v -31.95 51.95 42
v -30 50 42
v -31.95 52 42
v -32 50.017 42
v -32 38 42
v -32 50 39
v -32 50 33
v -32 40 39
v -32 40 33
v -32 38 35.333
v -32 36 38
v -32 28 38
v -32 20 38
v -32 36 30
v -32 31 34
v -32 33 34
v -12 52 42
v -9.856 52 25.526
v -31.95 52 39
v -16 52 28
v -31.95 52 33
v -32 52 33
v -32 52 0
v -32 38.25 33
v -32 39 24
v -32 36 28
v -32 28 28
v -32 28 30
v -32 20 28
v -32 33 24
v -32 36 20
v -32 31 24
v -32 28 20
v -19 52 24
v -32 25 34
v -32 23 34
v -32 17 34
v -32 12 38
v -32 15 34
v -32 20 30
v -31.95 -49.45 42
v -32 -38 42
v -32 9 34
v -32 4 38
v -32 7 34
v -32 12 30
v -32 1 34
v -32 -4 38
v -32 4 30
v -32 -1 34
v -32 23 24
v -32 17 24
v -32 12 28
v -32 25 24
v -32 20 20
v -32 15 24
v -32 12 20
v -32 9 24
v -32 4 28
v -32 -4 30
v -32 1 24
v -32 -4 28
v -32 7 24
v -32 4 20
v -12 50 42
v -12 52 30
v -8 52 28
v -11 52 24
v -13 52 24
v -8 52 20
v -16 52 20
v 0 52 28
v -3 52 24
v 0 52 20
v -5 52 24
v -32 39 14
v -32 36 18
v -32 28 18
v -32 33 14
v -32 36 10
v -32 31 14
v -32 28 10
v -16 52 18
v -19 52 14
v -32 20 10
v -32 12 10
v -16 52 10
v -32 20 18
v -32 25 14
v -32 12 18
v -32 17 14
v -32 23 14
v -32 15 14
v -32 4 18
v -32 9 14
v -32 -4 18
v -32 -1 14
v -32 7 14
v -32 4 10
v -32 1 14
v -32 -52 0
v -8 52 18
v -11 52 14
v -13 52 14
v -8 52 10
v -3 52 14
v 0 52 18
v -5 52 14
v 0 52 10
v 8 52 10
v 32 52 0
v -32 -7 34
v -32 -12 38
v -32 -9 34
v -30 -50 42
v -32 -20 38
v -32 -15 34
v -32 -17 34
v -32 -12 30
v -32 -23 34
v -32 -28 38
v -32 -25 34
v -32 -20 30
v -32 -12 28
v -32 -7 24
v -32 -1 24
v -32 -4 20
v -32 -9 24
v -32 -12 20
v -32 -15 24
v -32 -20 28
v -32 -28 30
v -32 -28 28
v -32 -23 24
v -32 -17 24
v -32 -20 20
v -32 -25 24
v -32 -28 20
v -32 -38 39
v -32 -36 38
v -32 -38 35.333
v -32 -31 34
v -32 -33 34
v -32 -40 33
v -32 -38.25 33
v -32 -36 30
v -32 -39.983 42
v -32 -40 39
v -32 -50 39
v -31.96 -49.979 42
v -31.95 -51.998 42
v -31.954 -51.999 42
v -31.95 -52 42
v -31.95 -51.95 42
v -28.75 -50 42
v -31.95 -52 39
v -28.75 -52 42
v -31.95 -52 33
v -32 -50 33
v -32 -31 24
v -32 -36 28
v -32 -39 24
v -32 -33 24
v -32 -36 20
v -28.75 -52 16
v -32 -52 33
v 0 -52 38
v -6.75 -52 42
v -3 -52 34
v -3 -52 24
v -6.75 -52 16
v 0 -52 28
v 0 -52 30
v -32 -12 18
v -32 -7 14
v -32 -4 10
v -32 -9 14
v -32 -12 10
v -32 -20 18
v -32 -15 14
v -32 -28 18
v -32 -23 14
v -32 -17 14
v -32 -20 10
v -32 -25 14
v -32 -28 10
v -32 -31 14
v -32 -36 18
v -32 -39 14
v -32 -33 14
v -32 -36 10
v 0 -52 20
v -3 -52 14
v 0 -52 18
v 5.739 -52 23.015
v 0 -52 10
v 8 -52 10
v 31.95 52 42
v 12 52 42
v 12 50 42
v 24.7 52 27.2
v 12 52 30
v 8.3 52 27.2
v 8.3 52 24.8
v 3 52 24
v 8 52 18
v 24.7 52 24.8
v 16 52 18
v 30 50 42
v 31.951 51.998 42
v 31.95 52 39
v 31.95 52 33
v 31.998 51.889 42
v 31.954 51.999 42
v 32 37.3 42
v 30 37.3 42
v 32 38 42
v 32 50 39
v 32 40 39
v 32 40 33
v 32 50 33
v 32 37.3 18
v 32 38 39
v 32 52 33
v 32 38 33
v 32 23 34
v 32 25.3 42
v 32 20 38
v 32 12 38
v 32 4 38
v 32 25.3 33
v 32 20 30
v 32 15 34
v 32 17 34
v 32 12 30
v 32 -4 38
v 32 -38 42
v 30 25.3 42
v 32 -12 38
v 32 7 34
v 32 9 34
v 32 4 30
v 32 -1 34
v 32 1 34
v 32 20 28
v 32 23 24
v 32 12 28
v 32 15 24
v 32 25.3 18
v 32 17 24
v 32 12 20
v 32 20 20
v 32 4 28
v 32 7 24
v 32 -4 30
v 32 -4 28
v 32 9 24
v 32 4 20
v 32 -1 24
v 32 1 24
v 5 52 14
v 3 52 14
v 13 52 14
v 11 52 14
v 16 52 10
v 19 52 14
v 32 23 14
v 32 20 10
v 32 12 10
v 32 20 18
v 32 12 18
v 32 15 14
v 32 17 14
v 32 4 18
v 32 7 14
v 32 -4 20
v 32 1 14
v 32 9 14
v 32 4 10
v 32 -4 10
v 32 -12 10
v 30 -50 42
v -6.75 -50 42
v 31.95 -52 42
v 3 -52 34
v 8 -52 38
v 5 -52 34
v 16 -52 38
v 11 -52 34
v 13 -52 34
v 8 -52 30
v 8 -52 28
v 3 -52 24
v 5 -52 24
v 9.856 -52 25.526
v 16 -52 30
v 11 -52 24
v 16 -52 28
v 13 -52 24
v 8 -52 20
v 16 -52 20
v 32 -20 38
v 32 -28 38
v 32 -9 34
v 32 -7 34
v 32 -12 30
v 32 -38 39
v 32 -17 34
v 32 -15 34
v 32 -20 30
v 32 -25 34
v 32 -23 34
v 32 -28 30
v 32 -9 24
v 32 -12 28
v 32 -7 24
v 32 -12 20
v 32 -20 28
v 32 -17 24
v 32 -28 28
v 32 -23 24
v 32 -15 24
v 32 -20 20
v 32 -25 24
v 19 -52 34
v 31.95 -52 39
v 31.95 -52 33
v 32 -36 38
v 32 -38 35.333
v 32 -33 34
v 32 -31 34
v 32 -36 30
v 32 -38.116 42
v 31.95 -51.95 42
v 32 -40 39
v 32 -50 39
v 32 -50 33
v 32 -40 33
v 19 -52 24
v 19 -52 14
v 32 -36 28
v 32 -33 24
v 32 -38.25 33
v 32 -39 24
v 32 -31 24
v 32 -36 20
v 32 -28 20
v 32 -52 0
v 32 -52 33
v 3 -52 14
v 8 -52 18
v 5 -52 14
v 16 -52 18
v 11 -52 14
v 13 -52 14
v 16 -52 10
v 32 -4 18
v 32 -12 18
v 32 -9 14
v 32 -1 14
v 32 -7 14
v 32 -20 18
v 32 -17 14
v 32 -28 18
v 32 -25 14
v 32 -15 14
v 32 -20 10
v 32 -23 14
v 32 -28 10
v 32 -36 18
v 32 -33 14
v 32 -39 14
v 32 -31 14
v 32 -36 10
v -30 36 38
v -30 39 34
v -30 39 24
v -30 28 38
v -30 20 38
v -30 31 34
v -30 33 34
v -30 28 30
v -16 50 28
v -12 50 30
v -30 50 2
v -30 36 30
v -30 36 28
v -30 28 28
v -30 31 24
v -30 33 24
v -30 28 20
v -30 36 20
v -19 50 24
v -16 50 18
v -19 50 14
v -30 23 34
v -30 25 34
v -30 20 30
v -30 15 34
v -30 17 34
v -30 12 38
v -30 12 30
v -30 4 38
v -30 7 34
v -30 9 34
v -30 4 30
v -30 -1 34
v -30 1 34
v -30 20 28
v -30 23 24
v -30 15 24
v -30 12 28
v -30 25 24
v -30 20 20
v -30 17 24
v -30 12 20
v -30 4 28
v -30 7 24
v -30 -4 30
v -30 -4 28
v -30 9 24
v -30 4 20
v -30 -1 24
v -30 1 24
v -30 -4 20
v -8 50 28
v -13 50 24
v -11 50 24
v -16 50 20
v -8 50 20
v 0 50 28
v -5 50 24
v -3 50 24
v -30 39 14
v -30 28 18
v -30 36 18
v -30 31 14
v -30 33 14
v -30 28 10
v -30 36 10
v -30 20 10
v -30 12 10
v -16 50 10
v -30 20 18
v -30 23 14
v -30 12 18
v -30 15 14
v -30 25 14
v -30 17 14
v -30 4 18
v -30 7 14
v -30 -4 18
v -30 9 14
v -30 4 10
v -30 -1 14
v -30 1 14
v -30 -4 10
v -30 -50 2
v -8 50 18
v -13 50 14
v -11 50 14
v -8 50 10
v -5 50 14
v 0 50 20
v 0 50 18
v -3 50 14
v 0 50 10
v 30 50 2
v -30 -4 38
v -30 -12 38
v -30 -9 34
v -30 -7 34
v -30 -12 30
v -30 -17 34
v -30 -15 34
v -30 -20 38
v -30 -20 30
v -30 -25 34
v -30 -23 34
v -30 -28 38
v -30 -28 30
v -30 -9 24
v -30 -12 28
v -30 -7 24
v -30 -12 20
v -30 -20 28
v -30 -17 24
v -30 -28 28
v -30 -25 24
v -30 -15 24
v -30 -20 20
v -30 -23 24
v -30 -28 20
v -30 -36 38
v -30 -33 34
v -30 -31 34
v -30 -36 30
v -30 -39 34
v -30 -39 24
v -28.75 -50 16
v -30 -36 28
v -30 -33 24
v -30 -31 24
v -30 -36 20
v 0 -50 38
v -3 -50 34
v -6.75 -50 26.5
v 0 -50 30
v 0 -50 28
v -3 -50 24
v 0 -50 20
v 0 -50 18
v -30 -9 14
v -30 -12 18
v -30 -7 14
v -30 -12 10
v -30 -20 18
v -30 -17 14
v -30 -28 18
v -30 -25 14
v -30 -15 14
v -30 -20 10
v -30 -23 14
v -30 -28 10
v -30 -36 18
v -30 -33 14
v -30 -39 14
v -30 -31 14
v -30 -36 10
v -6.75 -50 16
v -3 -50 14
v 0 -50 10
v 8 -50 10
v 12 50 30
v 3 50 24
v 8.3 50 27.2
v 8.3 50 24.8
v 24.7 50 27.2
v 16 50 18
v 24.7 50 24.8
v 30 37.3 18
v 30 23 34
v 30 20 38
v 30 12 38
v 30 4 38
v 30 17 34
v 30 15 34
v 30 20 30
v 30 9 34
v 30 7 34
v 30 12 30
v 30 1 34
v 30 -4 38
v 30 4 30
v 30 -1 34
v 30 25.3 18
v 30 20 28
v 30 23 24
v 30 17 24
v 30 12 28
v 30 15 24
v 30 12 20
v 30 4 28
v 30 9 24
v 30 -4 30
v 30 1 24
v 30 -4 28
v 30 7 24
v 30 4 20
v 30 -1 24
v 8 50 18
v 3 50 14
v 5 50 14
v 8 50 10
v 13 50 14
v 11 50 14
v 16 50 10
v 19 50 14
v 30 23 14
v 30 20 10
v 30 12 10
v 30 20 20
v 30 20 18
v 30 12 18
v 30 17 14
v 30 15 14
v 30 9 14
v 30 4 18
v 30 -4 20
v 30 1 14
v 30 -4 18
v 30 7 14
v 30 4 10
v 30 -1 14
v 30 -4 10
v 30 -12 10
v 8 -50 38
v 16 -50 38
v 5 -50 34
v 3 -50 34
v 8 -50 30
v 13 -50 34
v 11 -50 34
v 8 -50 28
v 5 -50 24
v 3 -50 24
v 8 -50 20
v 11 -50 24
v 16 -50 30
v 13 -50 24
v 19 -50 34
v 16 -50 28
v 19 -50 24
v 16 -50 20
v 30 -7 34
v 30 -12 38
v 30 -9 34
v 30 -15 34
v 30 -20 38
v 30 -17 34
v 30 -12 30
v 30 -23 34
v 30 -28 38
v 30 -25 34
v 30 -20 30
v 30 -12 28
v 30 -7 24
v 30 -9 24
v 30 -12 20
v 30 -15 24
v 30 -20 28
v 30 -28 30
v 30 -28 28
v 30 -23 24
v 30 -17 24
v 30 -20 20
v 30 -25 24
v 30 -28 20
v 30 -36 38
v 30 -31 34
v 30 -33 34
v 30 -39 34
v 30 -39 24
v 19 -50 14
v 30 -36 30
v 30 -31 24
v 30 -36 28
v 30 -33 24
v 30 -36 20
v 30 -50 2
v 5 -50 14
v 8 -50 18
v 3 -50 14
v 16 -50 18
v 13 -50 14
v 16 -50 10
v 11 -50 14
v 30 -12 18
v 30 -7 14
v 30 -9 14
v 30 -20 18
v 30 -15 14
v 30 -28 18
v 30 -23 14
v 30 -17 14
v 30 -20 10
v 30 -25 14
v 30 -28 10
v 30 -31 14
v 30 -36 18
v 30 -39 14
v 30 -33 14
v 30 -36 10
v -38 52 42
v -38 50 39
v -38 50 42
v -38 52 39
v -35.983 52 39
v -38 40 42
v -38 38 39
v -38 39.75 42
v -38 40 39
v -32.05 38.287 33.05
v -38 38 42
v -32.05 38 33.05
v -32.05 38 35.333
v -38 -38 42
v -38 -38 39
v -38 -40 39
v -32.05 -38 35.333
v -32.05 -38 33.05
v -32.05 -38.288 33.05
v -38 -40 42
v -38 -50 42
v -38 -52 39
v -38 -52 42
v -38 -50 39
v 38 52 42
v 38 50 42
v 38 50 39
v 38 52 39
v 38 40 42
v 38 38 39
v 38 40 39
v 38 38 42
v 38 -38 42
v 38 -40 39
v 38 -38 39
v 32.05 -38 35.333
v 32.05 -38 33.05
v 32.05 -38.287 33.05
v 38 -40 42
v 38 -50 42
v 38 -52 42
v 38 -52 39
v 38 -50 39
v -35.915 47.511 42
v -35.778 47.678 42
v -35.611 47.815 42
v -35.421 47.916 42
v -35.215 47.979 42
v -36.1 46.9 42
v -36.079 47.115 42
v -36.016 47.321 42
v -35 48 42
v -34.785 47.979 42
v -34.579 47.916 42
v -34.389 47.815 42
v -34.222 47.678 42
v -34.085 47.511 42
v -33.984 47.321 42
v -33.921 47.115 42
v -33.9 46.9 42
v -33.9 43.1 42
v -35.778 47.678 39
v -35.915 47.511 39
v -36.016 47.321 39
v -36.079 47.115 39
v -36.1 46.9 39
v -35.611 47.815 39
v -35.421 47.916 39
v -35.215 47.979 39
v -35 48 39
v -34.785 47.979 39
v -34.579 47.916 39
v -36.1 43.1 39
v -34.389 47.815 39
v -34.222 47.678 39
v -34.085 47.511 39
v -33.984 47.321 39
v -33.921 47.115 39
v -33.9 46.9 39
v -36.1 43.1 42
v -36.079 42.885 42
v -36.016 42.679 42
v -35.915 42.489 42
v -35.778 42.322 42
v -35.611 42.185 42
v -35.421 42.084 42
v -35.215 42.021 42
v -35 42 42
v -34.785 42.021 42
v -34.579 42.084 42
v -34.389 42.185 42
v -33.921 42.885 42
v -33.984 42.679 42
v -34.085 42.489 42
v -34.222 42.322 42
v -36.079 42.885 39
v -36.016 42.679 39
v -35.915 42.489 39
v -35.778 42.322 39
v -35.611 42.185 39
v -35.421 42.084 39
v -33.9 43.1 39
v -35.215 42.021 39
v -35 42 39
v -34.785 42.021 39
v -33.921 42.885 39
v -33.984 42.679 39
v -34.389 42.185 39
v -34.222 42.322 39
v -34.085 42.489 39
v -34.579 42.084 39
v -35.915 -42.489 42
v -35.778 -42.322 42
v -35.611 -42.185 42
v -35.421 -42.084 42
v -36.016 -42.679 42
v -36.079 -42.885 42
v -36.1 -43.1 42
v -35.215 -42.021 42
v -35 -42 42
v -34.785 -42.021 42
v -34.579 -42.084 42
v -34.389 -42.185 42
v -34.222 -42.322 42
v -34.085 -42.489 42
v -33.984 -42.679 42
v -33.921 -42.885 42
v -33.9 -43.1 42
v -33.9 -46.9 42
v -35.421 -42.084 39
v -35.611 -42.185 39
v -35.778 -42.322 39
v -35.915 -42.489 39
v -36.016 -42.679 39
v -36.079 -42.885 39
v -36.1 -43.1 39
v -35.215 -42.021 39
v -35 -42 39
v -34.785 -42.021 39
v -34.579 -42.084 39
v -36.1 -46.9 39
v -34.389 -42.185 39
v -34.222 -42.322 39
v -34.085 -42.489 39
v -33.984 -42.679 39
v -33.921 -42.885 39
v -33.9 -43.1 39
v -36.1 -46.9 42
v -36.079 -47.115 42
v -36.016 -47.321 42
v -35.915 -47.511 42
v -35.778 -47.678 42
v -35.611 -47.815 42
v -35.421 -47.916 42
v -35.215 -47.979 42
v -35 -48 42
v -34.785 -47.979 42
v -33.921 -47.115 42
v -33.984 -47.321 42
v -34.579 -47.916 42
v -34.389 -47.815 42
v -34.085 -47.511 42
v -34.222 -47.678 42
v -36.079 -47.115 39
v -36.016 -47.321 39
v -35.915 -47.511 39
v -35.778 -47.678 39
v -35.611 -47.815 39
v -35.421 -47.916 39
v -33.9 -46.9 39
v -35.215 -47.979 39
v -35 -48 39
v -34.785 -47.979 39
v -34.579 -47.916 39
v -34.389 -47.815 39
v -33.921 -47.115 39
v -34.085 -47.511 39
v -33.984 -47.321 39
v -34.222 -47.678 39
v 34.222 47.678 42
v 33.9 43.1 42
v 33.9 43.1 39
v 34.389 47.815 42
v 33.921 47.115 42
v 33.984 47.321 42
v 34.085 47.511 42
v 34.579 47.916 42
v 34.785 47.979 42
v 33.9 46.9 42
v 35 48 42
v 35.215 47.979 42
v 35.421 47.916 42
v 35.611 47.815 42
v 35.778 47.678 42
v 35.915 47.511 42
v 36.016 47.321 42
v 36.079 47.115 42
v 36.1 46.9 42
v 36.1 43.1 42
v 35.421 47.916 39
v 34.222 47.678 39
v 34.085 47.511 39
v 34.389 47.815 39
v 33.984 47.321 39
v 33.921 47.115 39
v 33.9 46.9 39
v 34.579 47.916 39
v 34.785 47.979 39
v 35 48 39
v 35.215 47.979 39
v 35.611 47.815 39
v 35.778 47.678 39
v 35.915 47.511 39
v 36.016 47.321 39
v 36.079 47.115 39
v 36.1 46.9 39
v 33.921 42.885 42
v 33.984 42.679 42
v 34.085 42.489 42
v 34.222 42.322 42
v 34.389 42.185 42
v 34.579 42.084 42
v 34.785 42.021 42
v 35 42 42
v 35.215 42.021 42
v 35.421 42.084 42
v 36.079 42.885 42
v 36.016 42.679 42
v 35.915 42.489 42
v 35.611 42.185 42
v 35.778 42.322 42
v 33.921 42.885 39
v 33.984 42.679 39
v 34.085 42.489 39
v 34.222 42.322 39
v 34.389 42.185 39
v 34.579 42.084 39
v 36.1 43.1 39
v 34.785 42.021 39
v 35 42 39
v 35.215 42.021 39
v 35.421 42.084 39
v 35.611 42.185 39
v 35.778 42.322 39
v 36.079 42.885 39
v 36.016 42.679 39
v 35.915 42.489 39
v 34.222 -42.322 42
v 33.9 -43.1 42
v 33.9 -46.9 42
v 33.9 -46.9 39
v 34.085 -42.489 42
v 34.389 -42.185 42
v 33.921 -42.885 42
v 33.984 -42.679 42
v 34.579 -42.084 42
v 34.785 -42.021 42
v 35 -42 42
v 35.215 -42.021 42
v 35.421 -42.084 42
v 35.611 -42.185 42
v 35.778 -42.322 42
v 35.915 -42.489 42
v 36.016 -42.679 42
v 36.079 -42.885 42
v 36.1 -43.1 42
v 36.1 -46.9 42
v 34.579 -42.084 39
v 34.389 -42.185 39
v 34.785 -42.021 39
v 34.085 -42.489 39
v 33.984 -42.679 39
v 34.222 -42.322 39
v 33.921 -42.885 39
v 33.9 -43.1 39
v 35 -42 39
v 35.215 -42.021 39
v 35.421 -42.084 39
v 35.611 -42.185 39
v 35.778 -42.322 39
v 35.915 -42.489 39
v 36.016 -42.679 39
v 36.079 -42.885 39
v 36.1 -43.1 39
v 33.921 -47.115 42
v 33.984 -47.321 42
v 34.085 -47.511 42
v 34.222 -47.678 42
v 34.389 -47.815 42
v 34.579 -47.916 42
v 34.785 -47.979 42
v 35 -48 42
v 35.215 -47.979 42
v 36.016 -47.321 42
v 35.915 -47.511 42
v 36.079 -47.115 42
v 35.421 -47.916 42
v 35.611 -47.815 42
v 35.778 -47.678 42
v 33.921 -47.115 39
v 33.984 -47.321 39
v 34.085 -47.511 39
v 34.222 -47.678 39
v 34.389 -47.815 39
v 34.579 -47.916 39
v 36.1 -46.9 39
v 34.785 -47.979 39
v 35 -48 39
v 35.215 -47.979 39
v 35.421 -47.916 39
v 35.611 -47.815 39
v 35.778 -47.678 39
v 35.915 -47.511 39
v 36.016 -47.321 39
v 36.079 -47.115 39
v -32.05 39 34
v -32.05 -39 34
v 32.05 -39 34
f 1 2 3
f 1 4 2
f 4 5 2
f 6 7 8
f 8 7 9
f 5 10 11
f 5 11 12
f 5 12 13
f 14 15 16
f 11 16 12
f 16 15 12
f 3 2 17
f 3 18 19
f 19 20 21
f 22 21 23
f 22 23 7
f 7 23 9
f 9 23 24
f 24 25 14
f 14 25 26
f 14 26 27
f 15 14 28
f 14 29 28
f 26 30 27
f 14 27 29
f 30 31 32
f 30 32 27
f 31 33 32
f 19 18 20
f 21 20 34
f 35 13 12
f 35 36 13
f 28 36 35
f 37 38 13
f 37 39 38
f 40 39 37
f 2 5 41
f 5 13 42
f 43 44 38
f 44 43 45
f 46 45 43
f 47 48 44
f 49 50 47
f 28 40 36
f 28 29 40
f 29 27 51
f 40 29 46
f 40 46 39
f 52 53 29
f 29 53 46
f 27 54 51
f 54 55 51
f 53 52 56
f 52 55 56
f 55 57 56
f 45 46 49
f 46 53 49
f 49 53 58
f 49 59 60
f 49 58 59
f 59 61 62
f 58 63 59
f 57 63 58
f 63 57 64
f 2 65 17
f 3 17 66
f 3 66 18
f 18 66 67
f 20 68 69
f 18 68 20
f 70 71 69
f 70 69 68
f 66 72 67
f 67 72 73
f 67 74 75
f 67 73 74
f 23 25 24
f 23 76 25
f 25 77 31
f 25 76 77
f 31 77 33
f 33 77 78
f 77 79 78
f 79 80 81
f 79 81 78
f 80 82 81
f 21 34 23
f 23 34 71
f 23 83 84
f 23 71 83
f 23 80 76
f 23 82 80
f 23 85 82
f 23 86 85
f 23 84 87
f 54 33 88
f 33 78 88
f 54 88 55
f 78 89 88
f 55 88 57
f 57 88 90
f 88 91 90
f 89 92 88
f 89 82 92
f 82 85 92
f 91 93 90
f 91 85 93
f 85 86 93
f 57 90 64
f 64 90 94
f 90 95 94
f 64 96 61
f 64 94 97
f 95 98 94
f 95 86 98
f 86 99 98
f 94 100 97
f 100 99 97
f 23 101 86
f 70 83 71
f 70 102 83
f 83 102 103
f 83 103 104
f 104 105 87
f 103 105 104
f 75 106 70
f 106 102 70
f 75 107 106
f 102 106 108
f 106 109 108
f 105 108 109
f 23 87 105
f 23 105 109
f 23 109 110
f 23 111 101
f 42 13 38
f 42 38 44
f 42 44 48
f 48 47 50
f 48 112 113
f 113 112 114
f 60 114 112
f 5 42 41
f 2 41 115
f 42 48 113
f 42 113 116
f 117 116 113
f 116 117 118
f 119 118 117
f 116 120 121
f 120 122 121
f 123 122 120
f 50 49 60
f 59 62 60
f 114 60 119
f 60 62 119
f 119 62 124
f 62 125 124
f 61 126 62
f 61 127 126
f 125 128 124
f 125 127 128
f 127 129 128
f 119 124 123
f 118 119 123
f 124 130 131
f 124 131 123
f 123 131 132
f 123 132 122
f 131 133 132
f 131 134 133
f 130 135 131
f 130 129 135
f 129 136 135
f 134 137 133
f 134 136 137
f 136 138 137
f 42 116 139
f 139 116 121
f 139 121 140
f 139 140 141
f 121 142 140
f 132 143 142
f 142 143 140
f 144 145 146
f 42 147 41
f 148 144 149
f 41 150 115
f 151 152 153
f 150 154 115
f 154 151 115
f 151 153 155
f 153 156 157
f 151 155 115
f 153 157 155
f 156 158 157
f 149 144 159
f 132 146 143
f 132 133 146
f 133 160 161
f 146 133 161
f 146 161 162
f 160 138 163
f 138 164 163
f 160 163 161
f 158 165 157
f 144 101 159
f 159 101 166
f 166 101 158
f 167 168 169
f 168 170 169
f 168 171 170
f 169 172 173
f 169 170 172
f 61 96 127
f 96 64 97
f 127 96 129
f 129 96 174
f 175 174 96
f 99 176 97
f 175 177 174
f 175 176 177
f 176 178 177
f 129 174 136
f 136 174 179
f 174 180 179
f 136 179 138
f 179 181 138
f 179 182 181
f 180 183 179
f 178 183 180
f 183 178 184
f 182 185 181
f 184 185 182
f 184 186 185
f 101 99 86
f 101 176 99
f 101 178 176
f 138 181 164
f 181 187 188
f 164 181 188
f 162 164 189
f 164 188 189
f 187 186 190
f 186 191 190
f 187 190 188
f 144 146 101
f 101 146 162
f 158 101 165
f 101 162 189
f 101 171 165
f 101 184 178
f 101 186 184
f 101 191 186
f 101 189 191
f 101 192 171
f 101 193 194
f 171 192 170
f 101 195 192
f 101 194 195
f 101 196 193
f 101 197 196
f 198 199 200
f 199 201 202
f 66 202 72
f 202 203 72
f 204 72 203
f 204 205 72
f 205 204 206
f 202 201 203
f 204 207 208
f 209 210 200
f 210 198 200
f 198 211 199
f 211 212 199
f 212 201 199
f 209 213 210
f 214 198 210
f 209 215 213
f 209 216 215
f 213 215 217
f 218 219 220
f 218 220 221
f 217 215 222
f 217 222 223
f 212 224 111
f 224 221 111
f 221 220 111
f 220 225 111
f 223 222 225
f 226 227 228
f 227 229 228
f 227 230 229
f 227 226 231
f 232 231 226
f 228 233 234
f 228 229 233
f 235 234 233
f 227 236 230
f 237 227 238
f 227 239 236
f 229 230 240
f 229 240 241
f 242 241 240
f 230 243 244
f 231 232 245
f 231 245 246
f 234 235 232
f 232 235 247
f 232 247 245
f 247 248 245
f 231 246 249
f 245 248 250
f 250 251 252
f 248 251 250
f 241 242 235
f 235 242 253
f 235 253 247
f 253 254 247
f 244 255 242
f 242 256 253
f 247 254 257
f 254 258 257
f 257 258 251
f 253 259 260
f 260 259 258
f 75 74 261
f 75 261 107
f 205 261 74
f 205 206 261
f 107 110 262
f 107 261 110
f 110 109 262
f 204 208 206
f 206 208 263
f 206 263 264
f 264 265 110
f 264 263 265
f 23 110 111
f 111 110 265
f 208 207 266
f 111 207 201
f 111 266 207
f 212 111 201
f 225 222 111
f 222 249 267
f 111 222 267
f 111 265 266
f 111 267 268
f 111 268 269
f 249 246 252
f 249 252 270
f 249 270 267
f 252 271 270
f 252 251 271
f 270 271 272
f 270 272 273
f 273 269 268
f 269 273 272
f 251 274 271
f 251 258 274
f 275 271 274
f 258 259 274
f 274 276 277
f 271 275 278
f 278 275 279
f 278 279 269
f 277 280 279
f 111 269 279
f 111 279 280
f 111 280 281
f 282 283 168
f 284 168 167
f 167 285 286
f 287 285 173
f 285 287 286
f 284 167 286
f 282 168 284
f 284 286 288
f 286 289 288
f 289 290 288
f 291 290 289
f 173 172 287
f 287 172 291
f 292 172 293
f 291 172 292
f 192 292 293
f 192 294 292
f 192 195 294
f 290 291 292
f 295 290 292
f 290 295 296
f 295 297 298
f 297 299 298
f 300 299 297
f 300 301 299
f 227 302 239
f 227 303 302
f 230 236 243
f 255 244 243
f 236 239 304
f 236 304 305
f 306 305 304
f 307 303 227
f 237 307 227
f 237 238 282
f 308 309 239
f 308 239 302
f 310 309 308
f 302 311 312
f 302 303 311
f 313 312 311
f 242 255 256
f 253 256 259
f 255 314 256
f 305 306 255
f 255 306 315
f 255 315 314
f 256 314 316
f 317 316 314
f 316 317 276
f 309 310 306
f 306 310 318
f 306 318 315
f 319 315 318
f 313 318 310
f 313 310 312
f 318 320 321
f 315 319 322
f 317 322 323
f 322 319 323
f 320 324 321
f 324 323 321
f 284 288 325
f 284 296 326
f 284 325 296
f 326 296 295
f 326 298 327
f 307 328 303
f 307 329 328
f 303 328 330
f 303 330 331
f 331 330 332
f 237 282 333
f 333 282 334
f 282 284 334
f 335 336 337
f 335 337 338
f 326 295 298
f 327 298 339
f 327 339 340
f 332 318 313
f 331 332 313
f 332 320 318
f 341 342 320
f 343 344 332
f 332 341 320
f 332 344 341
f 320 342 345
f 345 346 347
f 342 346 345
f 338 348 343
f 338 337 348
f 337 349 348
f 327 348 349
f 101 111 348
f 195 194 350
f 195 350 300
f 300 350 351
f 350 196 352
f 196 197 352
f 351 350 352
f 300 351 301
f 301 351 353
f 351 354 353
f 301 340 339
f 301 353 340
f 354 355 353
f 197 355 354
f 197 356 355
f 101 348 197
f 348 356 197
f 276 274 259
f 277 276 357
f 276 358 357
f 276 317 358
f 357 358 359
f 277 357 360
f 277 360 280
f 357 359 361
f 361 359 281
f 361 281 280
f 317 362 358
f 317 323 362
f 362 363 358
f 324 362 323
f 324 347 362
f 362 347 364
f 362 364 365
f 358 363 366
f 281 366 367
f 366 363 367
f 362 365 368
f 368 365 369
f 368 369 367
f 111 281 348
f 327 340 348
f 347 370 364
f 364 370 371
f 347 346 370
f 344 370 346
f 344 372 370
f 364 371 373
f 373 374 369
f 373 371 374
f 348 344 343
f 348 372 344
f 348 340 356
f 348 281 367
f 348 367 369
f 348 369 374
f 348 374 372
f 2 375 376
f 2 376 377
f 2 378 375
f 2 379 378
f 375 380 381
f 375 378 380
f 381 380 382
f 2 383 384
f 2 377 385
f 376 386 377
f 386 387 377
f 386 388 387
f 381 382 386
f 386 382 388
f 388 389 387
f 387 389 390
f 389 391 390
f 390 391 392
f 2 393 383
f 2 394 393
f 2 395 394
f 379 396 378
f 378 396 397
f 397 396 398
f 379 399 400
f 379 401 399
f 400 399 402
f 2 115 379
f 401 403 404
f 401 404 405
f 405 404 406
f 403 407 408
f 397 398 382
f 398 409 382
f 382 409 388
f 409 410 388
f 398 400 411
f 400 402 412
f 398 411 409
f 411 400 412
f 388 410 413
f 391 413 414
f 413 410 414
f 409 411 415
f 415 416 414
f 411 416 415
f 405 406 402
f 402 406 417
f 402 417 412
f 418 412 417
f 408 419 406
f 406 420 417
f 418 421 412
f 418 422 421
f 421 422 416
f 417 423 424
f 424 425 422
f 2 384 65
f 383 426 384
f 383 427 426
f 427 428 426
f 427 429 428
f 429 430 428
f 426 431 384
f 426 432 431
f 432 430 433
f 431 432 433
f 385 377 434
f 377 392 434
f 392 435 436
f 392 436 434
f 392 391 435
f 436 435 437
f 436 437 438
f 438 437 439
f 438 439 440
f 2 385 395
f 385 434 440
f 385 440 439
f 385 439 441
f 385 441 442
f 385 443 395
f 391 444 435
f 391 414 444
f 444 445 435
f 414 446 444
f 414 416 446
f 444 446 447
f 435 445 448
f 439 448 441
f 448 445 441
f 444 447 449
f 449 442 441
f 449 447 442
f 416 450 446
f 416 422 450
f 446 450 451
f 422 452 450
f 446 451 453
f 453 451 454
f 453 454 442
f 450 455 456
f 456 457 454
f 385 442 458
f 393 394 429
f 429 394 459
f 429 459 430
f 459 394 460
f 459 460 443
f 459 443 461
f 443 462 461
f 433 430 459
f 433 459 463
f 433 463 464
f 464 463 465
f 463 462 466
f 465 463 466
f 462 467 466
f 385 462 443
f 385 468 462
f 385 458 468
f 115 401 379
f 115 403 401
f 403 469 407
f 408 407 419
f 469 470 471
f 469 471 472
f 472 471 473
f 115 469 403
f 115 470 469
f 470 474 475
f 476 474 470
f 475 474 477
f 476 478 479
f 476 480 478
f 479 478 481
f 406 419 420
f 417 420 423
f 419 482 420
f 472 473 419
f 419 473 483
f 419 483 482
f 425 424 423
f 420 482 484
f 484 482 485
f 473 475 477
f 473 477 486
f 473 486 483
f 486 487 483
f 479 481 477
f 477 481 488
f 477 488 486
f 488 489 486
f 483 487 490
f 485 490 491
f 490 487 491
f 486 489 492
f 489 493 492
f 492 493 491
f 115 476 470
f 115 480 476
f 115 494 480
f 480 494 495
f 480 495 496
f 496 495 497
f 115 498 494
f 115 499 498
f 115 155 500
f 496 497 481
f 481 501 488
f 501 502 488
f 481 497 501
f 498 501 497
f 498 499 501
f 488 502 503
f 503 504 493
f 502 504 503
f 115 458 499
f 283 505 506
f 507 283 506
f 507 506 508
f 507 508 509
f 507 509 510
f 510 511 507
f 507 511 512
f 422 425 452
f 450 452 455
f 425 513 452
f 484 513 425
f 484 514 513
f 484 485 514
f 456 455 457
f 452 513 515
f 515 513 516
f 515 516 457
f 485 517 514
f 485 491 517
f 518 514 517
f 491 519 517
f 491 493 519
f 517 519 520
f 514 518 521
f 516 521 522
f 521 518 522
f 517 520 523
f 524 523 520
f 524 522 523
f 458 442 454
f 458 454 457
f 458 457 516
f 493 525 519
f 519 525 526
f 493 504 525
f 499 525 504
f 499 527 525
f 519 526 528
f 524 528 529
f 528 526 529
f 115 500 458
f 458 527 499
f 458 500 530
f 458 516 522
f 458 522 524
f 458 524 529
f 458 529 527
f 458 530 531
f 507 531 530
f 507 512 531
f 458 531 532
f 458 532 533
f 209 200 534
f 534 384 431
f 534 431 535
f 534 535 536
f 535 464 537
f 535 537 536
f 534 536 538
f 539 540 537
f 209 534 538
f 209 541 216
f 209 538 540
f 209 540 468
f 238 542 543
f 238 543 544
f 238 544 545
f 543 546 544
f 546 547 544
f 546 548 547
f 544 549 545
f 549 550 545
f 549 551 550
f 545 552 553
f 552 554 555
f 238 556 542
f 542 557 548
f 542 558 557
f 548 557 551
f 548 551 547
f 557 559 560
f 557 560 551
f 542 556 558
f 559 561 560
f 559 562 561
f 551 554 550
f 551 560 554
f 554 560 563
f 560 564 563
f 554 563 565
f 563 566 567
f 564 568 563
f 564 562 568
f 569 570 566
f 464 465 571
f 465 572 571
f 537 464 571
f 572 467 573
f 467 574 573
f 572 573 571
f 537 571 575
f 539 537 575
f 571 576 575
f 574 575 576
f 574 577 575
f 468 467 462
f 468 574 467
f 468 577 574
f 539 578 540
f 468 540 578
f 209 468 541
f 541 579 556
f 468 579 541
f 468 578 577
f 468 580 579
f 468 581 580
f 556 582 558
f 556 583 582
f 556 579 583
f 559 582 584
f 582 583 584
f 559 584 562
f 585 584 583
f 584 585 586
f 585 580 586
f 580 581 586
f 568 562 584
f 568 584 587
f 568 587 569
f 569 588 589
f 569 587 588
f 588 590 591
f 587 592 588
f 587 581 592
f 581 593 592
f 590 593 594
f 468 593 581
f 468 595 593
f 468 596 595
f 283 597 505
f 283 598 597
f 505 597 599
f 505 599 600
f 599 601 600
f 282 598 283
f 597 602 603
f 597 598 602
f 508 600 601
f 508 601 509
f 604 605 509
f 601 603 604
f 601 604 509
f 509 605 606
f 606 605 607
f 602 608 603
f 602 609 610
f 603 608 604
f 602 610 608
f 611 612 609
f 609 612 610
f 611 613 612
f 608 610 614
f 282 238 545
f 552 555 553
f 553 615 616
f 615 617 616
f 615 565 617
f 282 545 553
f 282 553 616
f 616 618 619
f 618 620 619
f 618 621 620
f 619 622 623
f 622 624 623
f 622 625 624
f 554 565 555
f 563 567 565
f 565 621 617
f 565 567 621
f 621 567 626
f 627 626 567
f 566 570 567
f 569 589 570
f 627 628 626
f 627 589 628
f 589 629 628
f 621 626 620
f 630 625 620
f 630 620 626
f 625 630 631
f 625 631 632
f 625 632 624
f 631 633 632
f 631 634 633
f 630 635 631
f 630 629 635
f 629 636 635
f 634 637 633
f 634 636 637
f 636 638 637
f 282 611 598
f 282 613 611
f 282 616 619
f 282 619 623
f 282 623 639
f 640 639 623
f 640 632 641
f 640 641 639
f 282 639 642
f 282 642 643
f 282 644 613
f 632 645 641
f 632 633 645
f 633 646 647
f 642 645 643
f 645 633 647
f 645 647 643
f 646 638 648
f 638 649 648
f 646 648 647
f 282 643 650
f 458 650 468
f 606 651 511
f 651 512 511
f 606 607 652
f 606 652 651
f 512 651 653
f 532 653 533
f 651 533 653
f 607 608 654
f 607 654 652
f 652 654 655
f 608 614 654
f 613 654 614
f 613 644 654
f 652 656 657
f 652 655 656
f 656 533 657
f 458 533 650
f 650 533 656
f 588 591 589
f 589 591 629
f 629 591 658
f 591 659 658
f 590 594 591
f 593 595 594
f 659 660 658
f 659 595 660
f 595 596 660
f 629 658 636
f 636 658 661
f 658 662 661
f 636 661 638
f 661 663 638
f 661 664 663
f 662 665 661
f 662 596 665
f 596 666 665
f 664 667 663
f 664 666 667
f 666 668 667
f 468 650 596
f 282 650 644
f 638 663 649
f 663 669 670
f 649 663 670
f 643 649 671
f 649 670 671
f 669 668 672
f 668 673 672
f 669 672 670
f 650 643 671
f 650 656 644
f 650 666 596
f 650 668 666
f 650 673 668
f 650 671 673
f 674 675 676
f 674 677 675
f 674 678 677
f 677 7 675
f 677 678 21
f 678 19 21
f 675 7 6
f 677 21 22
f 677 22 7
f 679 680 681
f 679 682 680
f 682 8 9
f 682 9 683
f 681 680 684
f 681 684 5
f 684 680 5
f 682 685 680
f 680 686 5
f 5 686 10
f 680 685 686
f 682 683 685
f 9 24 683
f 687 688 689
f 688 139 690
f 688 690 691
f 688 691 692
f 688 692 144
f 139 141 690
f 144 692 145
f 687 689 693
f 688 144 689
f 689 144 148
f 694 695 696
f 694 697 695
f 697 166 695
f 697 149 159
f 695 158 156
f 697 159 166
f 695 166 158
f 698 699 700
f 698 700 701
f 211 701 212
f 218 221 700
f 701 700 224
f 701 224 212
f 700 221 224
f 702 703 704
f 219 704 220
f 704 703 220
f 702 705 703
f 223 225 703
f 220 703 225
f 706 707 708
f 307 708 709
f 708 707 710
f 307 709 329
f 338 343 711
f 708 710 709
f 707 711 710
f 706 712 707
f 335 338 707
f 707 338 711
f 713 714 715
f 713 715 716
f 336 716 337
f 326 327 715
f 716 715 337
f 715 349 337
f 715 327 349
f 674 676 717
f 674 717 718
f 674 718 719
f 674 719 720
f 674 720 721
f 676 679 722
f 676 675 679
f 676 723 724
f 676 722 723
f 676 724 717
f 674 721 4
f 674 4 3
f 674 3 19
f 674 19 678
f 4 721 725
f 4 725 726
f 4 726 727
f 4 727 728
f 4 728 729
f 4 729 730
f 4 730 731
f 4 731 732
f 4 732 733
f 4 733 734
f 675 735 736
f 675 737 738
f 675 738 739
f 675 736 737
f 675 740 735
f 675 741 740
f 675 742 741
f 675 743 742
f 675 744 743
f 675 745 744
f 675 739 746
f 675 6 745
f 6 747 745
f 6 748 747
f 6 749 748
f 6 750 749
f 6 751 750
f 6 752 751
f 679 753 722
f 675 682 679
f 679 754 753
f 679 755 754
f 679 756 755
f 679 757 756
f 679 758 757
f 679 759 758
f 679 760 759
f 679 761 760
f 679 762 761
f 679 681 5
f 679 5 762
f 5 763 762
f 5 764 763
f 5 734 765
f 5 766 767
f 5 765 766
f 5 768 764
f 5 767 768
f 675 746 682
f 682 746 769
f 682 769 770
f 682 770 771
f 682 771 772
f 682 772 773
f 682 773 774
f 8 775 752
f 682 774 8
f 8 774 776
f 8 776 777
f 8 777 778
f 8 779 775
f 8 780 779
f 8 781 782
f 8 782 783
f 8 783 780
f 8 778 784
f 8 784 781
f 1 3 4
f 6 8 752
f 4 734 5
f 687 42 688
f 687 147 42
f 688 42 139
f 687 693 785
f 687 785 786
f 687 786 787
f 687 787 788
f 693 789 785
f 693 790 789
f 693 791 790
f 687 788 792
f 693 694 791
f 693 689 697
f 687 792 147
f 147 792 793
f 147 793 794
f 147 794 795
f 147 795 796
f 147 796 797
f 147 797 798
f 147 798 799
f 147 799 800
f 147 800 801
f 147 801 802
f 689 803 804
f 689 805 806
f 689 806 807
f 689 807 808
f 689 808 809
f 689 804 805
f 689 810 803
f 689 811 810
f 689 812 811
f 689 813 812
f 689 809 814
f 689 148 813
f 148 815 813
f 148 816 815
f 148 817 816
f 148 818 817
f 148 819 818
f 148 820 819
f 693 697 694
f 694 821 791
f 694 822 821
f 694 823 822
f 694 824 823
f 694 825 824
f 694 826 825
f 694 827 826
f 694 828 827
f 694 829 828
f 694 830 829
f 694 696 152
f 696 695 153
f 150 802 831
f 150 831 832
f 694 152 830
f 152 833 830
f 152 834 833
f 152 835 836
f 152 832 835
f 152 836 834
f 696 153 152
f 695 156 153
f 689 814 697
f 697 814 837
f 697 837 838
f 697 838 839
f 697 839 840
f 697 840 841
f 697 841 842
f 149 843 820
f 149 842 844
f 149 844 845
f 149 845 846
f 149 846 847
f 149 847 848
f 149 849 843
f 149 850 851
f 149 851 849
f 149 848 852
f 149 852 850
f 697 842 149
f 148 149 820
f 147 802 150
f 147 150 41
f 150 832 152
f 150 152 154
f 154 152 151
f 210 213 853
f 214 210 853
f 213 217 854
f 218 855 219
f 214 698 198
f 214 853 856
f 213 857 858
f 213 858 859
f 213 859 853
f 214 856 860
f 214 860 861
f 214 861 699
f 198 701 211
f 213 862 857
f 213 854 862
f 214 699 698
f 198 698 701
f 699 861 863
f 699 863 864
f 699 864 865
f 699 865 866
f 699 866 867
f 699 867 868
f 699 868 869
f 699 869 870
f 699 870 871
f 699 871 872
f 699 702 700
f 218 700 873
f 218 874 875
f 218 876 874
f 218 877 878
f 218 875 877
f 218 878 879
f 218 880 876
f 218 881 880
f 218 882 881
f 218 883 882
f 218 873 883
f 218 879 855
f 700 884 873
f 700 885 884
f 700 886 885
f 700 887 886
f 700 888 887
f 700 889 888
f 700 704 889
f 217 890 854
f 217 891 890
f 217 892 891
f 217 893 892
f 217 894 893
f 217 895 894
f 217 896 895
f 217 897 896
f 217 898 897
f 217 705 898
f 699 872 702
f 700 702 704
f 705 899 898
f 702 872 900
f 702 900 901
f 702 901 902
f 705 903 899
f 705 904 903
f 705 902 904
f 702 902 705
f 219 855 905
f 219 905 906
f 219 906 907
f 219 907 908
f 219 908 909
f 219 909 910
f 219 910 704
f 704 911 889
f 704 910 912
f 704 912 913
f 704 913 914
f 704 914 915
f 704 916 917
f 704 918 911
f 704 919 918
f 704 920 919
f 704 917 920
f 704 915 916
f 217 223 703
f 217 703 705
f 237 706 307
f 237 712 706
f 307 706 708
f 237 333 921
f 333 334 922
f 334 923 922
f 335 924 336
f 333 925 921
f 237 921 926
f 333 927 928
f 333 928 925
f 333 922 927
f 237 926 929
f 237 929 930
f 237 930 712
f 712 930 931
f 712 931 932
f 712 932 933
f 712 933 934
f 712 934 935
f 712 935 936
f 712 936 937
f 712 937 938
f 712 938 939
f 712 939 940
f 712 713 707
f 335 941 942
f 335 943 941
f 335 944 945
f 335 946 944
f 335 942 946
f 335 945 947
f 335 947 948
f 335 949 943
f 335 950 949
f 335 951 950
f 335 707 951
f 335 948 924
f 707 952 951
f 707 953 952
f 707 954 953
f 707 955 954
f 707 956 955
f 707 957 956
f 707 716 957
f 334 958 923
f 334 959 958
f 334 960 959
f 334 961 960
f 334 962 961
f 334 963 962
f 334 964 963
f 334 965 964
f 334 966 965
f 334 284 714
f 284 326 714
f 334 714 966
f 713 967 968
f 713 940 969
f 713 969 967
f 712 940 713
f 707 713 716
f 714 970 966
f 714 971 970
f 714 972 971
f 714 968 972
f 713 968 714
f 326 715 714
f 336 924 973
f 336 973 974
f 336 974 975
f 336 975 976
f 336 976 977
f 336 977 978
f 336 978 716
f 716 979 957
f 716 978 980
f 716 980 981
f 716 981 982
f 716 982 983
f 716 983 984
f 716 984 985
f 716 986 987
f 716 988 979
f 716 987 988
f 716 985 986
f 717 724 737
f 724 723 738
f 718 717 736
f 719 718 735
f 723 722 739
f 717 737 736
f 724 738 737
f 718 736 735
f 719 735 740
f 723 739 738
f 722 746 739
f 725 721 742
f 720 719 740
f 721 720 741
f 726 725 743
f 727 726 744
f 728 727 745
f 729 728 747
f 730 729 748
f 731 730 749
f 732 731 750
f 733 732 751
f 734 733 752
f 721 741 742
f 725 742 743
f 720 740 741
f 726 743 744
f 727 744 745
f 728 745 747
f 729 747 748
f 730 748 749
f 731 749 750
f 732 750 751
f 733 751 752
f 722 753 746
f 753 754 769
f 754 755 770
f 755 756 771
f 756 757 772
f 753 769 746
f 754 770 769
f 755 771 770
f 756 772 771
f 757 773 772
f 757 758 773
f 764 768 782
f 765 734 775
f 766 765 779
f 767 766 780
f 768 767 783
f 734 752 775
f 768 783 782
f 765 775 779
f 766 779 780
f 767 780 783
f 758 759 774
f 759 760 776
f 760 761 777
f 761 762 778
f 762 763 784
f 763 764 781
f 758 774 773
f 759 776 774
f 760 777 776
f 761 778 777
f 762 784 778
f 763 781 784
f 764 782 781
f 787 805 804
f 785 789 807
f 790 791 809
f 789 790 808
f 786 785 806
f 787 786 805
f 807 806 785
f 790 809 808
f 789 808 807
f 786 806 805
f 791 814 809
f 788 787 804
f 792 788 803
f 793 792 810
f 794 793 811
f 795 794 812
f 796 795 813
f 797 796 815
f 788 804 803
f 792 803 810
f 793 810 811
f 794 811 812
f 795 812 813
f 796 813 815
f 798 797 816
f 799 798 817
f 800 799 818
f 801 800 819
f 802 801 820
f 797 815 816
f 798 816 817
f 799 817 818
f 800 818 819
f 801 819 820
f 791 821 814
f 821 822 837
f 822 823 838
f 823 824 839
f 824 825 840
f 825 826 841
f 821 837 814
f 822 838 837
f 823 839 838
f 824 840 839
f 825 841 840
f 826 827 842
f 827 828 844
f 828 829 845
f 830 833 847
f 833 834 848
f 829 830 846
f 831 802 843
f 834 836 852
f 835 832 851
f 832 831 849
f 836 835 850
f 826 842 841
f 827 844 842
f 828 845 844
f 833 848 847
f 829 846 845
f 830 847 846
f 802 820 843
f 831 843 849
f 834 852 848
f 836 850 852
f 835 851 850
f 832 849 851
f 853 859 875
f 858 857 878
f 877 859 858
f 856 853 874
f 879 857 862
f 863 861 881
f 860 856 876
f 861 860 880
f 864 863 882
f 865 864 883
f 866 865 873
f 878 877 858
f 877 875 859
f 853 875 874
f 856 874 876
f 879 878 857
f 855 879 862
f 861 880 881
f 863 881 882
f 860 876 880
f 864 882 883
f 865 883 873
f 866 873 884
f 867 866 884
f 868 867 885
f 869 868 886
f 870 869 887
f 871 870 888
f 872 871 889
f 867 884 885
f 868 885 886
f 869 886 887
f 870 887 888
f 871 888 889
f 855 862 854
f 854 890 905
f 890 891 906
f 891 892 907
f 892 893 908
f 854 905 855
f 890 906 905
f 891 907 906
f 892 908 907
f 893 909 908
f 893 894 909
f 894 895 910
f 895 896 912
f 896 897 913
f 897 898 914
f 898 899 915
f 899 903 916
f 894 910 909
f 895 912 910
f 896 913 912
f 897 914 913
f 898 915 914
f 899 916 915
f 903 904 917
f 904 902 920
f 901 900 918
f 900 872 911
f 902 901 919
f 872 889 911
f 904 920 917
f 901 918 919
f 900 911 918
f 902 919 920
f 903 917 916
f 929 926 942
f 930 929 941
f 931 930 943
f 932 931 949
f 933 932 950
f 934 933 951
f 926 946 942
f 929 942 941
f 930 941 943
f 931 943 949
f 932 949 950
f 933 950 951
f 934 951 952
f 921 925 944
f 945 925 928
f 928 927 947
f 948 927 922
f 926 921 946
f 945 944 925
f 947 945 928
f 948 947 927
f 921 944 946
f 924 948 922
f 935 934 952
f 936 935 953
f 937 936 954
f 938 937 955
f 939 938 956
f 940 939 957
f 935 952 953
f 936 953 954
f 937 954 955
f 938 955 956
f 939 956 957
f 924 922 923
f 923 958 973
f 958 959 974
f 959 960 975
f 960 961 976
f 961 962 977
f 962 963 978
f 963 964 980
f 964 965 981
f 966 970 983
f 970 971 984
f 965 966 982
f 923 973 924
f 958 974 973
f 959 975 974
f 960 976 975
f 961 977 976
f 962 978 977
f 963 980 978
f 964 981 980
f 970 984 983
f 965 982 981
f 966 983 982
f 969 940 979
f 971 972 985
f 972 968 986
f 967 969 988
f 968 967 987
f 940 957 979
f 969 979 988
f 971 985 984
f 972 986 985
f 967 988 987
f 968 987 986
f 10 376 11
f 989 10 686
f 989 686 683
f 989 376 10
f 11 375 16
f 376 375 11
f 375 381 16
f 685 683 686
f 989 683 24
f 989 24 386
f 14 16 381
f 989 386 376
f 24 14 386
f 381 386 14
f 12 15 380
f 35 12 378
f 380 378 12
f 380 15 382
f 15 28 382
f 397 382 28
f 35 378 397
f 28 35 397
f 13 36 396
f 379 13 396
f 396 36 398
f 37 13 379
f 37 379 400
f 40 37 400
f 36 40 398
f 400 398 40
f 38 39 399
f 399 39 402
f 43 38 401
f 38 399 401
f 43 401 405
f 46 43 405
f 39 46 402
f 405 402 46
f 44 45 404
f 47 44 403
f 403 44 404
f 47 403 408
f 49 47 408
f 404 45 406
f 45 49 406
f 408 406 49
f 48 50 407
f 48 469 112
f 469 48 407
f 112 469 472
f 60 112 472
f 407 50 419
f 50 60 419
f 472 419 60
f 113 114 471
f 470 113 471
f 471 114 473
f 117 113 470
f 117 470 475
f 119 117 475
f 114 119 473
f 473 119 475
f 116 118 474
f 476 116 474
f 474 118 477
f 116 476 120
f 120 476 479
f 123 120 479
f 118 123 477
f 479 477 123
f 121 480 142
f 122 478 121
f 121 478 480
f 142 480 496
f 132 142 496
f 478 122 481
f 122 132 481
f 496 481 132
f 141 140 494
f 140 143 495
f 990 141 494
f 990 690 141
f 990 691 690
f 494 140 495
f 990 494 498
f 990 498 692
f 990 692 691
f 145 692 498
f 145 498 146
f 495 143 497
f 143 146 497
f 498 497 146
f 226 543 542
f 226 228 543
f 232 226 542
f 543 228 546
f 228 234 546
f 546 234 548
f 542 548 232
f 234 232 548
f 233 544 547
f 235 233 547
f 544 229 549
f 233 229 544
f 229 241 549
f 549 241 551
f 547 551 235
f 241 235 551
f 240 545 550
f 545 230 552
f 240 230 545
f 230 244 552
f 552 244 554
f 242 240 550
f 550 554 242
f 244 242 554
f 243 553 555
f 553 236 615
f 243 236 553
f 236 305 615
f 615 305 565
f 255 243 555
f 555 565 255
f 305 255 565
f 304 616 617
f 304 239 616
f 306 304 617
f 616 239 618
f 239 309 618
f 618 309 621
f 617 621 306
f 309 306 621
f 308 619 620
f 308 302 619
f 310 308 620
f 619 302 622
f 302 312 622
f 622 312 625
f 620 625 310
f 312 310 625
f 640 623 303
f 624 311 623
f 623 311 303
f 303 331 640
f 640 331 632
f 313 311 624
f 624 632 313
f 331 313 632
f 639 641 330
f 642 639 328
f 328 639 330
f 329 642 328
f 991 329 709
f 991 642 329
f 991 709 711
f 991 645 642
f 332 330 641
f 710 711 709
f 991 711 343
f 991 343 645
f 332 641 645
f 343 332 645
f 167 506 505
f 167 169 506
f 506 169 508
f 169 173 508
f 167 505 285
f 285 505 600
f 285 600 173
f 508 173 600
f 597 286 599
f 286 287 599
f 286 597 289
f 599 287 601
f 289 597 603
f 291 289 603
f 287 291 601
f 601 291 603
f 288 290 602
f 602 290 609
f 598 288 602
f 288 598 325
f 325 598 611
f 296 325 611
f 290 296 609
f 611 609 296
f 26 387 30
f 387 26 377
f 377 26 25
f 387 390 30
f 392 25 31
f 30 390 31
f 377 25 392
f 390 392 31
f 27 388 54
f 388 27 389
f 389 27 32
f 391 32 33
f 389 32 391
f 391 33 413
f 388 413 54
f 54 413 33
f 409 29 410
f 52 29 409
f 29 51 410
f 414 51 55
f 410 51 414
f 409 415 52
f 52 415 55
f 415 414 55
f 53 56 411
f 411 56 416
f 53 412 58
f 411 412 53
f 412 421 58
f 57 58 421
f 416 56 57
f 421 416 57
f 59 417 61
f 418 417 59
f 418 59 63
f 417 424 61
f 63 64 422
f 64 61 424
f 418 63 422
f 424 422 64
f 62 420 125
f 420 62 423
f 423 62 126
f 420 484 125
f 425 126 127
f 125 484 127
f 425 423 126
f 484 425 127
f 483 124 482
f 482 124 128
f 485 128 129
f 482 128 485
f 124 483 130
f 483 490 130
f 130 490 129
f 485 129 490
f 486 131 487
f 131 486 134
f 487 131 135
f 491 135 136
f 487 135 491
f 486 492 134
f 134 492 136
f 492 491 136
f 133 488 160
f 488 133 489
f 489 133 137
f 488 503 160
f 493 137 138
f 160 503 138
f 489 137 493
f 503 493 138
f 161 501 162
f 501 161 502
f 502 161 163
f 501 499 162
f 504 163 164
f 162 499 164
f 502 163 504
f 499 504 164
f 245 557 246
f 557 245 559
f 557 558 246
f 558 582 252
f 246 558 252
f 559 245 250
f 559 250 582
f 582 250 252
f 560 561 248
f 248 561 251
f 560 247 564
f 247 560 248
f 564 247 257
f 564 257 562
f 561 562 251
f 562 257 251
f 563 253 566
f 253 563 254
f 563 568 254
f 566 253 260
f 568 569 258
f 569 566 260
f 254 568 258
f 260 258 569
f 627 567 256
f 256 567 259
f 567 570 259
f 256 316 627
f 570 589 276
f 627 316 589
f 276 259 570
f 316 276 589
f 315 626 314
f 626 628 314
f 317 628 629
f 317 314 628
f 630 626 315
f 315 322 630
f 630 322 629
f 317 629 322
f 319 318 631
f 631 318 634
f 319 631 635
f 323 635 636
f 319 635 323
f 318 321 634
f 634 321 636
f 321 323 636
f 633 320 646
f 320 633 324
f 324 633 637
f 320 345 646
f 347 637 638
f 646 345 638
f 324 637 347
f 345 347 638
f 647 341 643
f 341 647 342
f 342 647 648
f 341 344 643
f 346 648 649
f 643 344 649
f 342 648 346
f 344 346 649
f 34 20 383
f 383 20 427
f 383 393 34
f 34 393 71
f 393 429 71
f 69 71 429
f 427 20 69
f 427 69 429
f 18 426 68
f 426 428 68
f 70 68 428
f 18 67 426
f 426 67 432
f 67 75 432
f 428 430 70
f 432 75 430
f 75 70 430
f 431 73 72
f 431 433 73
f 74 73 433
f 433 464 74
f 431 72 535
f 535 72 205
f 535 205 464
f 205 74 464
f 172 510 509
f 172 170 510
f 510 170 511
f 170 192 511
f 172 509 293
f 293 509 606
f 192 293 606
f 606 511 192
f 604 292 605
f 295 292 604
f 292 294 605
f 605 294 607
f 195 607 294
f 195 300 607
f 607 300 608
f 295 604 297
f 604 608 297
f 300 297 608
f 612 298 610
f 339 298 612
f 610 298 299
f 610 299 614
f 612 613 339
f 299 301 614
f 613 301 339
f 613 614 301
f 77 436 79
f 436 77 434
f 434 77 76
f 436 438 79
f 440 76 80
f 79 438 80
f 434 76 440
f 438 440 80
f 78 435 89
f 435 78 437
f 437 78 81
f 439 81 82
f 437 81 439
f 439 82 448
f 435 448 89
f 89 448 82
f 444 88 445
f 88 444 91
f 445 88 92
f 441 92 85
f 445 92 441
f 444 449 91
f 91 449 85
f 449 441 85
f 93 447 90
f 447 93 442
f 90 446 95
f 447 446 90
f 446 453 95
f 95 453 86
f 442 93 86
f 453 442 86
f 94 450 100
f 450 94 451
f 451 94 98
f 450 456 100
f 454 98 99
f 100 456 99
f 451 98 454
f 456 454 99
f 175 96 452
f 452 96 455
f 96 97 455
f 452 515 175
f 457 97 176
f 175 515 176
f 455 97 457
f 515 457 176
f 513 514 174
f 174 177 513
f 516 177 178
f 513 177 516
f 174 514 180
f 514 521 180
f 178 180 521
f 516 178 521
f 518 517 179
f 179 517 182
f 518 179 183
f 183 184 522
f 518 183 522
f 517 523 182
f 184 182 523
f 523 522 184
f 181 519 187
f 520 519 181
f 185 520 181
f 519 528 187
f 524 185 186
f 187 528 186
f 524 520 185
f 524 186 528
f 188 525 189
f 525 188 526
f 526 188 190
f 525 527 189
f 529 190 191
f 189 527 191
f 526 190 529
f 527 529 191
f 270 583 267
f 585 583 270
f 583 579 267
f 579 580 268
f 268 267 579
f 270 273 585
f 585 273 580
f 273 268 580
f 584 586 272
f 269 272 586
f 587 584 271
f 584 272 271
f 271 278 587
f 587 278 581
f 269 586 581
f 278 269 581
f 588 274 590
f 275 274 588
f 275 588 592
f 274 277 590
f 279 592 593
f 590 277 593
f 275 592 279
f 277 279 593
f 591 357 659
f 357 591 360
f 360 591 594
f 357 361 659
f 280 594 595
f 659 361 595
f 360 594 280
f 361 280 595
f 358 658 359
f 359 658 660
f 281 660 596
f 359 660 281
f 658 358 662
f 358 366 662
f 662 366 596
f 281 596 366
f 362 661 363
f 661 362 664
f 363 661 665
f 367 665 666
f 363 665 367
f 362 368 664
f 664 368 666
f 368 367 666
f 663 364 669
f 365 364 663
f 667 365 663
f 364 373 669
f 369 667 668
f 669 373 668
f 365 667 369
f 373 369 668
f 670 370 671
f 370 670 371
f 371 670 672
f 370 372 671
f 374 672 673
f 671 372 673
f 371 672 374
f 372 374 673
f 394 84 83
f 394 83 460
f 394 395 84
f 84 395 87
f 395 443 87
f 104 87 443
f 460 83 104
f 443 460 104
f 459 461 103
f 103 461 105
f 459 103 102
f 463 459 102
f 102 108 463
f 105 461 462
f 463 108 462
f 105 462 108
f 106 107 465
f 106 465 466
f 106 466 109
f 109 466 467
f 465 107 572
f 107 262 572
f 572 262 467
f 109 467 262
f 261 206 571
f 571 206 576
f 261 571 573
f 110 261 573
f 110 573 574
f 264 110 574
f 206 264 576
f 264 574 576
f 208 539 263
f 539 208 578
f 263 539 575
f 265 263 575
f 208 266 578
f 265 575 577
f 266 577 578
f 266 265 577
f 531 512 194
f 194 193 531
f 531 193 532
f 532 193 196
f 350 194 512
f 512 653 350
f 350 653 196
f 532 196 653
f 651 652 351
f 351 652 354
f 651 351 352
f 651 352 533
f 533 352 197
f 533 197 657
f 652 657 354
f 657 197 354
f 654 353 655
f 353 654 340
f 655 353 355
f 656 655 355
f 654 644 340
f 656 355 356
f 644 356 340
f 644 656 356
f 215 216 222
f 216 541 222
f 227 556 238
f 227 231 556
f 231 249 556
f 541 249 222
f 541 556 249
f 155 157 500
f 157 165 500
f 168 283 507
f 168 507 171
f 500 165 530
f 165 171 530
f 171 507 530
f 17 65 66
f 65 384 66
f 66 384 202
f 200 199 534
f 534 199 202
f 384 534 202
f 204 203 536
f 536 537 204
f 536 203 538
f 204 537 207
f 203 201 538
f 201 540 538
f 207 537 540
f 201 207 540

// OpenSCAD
// Pi 4B + PoE HAT light shield; open bottom, solid roof. All dimensions in mm.
// Pi orientation: Ethernet +Y, microSD -Y, USB-C +X, ribbon exits a short end.
// https://datasheets.raspberrypi.com/rpi4/raspberry-pi-4-mechanical-drawing.pdf

/* [Body] */
inside_width = 60;
inside_length = 100;
inside_height = 40;              // From mounting plate to underside of roof.
wall = 2;
roof = 2;

/* [Openings: deliberately generous, Pi centred inside] */
usb_center_y = -31.3;
usb_width = 12;                  // Clears the adjacent mounting ear.
usb_height = 24;                 // Notch open to mounting plate.
ethernet_center_x = -17.75;
ethernet_width = 22;
ethernet_height = 26;            // Notch open to mounting plate.
sd_center_x = 0;
sd_width = 24;
sd_height = 12;                  // Notch open to mounting plate.
ribbon_end = -1;                // -Y microSD end; set +1 for Ethernet end.
ribbon_center_x = 16.5;         // CSI plane: 28 - 11.5 mm from Pi drawing.
ribbon_width = 16;
ribbon_height = 2.4;
ribbon_z = 16;                  // Slot centre above mounting plate.

/* [Side ventilation] */
vent_width = 6;
vent_height = 8;                 // Pointed diamonds avoid flat vent ceilings.
vent_pitch = 8;
vent_row_pitch = 10;
vent_margin = 12;                // Keeps vents away from corners and ears.
vent_bottom = 4;
vent_top_margin = 8;             // Solid upper band below the roof.

/* [Mounting] */
grid_pitch = 5;                  // Assumed plate pitch; verify before printing.
bolt_diameter = 2;
buttonhead_diameter = 3.5;
clearance = 0.2;                 // Added to bolt diameter; ribbon gets it per edge.
slot_length = 6;                 // Overall length, along Y.
ear_length = 14;                 // Flush with the ends on the 5 mm grid.
ear_thickness = 3;
ear_edge = 3;                    // Bolt centre to outer edge of ear.
rib_width = 2;

/* [Hidden] */
$fn = 32;
eps = 0.05;
outside_width = inside_width + 2 * wall;
outside_length = inside_length + 2 * wall;
total_height = inside_height + roof;
slot_width = bolt_diameter + clearance;
mount_x = ceil((outside_width / 2 + buttonhead_diameter / 2 + 1) / grid_pitch) * grid_pitch;
mount_y = floor((outside_length / 2 - ear_length / 2) / grid_pitch) * grid_pitch;
ear_extension = mount_x + ear_edge - outside_width / 2;
ribbon_opening = ribbon_width + 2 * clearance;

assert(inside_width >= 60 && inside_length >= 100 && inside_height >= 40
       && wall >= 1.6 && roof >= 1.6, "Keep the requested clear volume and strong walls.");
assert(grid_pitch > 0 && ear_thickness >= 3 && rib_width >= 1.6
       && ear_extension > 0 && slot_length >= slot_width
       && ear_edge > slot_width / 2 + 1
       && slot_length - slot_width + buttonhead_diameter < ear_length - 2 * rib_width,
       "Leave material around the slots and room for buttonheads between the ribs.");
assert(vent_width > 0 && vent_height >= vent_width
       && vent_pitch >= vent_width + 2 && vent_row_pitch >= vent_height + 2
       && vent_bottom >= 2 && vent_top_margin >= 4,
       "Vent diamonds need printable slopes, 2 mm webs and a solid roof border.");
assert(max(usb_height, ethernet_height, sd_height) < inside_height - 4
       && abs(usb_center_y) + usb_width / 2 < inside_length / 2
       && abs(ethernet_center_x) + ethernet_width / 2 < inside_width / 2
       && abs(sd_center_x) + sd_width / 2 < inside_width / 2
       && abs(ribbon_end) == 1
       && abs(ribbon_center_x) + ribbon_opening / 2 < inside_width / 2
       && ribbon_z - ribbon_height / 2 > 0
       && ribbon_z + ribbon_height / 2 < inside_height - 4,
       "Openings must leave corners and the roof intact.");

function near_opening(u, z, centre, width, bottom, height) =
    abs(u - centre) < (width + vent_width) / 2 + 2
    && abs(z - bottom - height / 2) < (height + vent_height) / 2 + 2;

module diamond() {
    linear_extrude(wall + 2 * eps, center = true)
        polygon([[0, vent_height / 2], [vent_width / 2, 0],
                 [0, -vent_height / 2], [-vent_width / 2, 0]]);
}

module barn() {
    difference() {
        union() {
            difference() {
                translate([-outside_width / 2, -outside_length / 2, 0])
                    cube([outside_width, outside_length, total_height]);
                translate([-inside_width / 2, -inside_length / 2, -eps])
                    cube([inside_width, inside_length, inside_height + eps]);
            }
            for (side = [-1, 1], end = [-1, 1]) {
                x = side > 0 ? outside_width / 2 - eps : -mount_x - ear_edge;
                y = end * mount_y - ear_length / 2;
                translate([x, y, 0]) cube([ear_extension + eps, ear_length, ear_thickness]);
                // Two 45-degree ribs support each ear when printed roof-down.
                for (offset = [0, ear_length - rib_width])
                    hull() {
                        translate([side > 0 ? outside_width / 2 - eps : -outside_width / 2,
                                   y + offset, 0])
                            cube([eps, rib_width, ear_thickness + ear_extension]);
                        translate([x, y + offset, 0])
                            cube([ear_extension + eps, rib_width, ear_thickness]);
                    }
            }
        }

        translate([inside_width / 2 - eps, usb_center_y - usb_width / 2, -eps])
            cube([wall + 2 * eps, usb_width, usb_height + eps]);
        translate([ethernet_center_x - ethernet_width / 2, inside_length / 2 - eps, -eps])
            cube([ethernet_width, wall + 2 * eps, ethernet_height + eps]);
        translate([sd_center_x - sd_width / 2, -outside_length / 2 - eps, -eps])
            cube([sd_width, wall + 2 * eps, sd_height + eps]);
        translate([ribbon_center_x - ribbon_opening / 2,
                   ribbon_end > 0 ? inside_length / 2 - eps : -outside_length / 2 - eps,
                   ribbon_z - ribbon_height / 2])
            cube([ribbon_opening, wall + 2 * eps, ribbon_height]);

        for (side = [-1, 1], end = [-1, 1])
            translate([side * mount_x, end * mount_y, -eps])
                linear_extrude(ear_thickness + ear_extension + 2 * eps)
                    hull()
                        for (tip = [-1, 1])
                            translate([0, tip * (slot_length - slot_width) / 2]) circle(d = slot_width);

        for (z = [vent_bottom + vent_height / 2 : vent_row_pitch :
                  inside_height - vent_top_margin - vent_height / 2]) {
            long_count = floor((inside_length - 2 * vent_margin) / vent_pitch);
            for (side = [-1, 1], n = [0 : long_count]) {
                u = (n - long_count / 2) * vent_pitch;
                if (side < 0 || !near_opening(u, z, usb_center_y, usb_width, 0, usb_height))
                    translate([side * (inside_width / 2 + wall / 2), u, z])
                        rotate([90, 0, 90]) diamond();
            }
            short_count = floor((inside_width - 2 * vent_margin) / vent_pitch);
            for (end = [-1, 1], n = [0 : short_count]) {
                u = (n - short_count / 2) * vent_pitch;
                if (((end > 0 && !near_opening(u, z, ethernet_center_x, ethernet_width, 0, ethernet_height))
                    || (end < 0 && !near_opening(u, z, sd_center_x, sd_width, 0, sd_height)))
                    && (end != ribbon_end || !near_opening(u, z, ribbon_center_x, ribbon_opening,
                                                         ribbon_z - ribbon_height / 2, ribbon_height)))
                    translate([u, end * (inside_length / 2 + wall / 2), z])
                        rotate([90, 0, 0]) diamond();
            }
        }
    }
}

// Export ready to print, solid roof on the bed and mounting ears facing up.
translate([0, 0, total_height]) rotate([180, 0, 0]) barn();
